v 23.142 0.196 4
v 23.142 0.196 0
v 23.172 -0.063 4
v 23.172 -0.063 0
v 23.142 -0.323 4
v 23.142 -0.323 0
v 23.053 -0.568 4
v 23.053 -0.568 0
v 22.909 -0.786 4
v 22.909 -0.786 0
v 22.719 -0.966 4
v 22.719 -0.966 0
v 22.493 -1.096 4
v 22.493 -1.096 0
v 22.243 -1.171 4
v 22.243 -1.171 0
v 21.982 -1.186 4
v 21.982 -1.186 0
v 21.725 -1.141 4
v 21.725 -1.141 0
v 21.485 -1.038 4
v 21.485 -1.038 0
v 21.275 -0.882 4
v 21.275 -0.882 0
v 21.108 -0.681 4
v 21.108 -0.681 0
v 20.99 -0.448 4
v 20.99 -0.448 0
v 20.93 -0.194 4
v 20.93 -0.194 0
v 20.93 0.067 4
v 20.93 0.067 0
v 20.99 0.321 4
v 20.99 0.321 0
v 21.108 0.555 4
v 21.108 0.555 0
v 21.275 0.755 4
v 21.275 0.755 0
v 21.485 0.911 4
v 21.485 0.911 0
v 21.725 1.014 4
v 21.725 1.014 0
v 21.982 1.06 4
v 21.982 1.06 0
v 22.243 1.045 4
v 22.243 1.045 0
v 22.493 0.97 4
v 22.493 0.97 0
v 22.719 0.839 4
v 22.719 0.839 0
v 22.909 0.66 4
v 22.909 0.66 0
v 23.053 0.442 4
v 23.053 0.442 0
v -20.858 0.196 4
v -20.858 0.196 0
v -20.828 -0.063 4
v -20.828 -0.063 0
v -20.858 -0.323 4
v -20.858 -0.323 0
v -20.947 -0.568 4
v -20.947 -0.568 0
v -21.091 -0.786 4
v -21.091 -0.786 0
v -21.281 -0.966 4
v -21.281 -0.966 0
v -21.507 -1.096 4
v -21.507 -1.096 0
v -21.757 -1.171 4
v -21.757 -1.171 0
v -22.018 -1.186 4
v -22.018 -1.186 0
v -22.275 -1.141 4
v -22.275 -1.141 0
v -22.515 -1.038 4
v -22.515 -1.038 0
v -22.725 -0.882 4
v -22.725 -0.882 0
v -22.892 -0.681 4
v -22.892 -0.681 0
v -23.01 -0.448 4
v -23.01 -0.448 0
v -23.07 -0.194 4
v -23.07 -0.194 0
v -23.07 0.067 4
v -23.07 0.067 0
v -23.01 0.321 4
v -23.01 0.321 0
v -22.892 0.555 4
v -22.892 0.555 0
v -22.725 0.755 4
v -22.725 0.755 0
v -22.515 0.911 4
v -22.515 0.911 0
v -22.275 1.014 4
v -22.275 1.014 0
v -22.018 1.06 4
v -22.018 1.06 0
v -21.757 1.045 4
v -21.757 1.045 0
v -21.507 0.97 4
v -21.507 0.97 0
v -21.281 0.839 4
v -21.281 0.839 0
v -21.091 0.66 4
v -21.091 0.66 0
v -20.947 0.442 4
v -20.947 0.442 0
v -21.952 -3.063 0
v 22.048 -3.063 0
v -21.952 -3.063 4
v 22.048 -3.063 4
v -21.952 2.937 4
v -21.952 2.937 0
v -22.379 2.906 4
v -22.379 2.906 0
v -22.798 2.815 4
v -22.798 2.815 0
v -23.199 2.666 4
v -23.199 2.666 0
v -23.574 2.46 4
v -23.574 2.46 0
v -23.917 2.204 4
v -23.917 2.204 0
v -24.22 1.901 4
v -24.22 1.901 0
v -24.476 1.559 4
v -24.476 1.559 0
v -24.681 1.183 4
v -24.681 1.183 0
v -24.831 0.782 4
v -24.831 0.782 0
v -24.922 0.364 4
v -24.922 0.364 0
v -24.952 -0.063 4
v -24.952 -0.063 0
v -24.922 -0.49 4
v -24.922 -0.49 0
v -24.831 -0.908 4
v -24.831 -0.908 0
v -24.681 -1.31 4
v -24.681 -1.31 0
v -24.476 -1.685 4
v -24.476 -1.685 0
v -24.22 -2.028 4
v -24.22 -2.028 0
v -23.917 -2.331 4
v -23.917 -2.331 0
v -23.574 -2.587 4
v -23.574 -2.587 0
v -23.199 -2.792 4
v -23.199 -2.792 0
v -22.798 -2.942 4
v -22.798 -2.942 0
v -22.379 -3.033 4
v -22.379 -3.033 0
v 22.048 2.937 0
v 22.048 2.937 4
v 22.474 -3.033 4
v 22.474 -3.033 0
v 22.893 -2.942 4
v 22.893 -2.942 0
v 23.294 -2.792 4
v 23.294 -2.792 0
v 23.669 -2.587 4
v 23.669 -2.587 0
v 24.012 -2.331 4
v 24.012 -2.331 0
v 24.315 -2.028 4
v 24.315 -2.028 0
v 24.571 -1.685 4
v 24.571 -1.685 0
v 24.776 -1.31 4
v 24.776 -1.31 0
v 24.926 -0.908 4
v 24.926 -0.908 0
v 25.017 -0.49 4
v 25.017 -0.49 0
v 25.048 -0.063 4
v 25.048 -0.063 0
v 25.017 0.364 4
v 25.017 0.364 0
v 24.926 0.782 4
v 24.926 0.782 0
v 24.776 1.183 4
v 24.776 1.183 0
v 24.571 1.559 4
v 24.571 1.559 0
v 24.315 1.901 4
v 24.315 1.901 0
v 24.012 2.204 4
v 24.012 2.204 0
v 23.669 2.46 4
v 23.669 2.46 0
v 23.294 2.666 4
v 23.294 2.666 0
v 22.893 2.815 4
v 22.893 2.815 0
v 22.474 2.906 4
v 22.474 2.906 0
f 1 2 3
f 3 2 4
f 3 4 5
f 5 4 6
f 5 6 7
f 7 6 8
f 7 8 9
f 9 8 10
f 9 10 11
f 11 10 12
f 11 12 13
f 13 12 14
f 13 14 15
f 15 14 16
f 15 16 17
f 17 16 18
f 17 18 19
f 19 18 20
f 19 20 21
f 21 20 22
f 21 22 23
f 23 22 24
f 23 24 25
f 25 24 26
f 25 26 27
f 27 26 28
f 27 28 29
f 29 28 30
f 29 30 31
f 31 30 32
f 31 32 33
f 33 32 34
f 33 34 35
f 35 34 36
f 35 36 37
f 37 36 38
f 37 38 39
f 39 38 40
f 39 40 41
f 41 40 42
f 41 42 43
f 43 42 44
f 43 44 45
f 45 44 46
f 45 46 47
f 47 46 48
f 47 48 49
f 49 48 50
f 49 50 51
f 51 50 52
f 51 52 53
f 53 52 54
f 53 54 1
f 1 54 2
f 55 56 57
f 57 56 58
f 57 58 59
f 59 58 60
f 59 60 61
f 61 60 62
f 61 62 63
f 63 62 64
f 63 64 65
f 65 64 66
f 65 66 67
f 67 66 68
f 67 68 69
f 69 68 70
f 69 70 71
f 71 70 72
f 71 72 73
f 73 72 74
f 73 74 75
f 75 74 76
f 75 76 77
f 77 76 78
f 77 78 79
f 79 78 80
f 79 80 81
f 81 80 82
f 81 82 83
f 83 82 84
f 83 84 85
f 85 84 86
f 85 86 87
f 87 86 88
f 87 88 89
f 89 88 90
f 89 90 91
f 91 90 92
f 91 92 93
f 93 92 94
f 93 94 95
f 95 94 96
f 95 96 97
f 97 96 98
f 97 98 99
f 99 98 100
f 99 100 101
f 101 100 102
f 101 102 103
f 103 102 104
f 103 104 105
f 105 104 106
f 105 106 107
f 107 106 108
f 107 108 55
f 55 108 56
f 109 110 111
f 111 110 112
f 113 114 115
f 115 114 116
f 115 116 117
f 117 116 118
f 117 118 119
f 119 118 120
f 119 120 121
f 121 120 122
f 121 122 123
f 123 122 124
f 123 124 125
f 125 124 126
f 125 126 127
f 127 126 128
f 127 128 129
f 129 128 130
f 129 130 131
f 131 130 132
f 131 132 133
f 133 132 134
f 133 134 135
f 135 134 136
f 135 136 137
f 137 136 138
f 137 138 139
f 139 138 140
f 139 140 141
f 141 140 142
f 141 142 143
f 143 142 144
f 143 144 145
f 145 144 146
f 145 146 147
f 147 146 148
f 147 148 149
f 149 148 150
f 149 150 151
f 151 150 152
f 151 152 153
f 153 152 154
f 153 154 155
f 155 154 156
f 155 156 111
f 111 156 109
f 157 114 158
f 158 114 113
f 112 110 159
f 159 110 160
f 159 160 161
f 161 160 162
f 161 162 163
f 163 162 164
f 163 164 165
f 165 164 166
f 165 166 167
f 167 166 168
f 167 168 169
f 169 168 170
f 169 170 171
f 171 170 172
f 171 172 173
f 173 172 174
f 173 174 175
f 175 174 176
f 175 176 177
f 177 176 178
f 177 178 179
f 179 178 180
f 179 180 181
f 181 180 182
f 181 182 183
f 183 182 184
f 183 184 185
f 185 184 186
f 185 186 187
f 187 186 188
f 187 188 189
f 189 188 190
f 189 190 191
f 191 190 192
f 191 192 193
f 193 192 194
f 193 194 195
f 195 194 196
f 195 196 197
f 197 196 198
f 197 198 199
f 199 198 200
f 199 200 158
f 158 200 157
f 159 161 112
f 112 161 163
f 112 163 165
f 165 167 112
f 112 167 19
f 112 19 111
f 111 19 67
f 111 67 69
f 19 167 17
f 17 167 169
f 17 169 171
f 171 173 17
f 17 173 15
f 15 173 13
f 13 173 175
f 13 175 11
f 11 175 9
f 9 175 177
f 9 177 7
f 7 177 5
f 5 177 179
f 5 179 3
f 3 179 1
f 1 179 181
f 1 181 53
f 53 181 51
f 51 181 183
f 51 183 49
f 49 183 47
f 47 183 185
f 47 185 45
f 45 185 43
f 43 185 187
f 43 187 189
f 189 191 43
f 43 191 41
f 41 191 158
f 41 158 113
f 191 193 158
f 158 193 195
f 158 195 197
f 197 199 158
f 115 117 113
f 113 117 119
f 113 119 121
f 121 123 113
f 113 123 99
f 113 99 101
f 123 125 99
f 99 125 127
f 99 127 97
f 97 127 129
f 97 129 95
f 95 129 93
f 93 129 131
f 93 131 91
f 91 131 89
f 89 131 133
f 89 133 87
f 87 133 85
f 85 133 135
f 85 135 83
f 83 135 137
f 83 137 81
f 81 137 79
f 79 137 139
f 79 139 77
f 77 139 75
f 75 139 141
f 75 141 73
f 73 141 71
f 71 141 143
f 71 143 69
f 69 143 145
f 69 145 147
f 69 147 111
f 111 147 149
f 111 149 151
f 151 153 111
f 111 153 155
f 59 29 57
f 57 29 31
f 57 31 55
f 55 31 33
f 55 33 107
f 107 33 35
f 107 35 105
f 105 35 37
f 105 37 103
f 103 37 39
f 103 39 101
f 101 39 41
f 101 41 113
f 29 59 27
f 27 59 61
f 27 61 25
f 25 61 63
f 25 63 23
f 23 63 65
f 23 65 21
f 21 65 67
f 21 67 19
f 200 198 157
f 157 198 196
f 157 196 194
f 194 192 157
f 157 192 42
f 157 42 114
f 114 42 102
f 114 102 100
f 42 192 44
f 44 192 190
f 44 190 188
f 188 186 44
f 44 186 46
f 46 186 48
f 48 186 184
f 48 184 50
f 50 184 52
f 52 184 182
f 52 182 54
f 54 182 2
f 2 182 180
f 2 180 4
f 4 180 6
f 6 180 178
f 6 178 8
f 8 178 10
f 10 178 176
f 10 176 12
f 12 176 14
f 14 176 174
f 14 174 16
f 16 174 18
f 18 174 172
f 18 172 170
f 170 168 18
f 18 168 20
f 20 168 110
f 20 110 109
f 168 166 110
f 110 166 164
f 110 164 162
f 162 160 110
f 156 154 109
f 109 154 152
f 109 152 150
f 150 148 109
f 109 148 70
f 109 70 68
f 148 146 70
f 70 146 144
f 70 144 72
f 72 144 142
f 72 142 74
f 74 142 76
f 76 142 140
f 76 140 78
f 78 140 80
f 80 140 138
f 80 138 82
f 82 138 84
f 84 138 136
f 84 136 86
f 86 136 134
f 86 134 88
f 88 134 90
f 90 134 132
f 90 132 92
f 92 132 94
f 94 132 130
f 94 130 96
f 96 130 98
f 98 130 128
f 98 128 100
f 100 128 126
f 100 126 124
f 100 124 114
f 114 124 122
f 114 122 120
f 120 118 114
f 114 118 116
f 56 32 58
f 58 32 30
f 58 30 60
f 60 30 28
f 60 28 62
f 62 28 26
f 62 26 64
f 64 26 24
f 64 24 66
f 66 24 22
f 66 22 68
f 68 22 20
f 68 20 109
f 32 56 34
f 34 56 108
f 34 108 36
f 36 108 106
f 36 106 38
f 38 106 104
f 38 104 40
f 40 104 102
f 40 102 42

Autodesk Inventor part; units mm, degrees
ref_plane "YZ Plane" through (0, 0, 0) normal (1, 0, 0) x (0, 1, 0)
ref_plane "XZ Plane" through (0, 0, 0) normal (0, 1, 0) x (-1, 0, 0)
ref_plane "XY Plane" through (0, 0, 0) normal (0, 0, 1) x (1, 0, 0)
sketch "Sketch1" plane through (0, 0, 0) normal (0, 0, 1) x (1, 0, 0)
  circle A0 centre (-21.9525, -0.0633) radius 1
  circle A1 centre (22.0475, -0.0633) radius 1
  circle A2 centre (-21.9525, -0.0633) radius 1.125
  circle A3 centre (22.0475, -0.0633) radius 1.125
  circle A4 centre (-21.9525, -0.0633) radius 3
  circle A5 centre (22.0475, -0.0633) radius 3
  line L0 (-21.9525, 2.9367) -> (22.0475, 2.9367)
  line L1 (-21.9525, -3.0633) -> (22.0475, -3.0633)
  point P0 (0, 0)
  dimension "d0" = 2.25
  dimension "d1" = 2.25
  dimension "d2" = 6
  dimension "d3" = 6
extrude "Extrusion1" add sketch "Sketch1" along normal blind 4 contours A4 | A4 L0 A5 L1 | A5
properties part number "servostrap_3DPrint"
